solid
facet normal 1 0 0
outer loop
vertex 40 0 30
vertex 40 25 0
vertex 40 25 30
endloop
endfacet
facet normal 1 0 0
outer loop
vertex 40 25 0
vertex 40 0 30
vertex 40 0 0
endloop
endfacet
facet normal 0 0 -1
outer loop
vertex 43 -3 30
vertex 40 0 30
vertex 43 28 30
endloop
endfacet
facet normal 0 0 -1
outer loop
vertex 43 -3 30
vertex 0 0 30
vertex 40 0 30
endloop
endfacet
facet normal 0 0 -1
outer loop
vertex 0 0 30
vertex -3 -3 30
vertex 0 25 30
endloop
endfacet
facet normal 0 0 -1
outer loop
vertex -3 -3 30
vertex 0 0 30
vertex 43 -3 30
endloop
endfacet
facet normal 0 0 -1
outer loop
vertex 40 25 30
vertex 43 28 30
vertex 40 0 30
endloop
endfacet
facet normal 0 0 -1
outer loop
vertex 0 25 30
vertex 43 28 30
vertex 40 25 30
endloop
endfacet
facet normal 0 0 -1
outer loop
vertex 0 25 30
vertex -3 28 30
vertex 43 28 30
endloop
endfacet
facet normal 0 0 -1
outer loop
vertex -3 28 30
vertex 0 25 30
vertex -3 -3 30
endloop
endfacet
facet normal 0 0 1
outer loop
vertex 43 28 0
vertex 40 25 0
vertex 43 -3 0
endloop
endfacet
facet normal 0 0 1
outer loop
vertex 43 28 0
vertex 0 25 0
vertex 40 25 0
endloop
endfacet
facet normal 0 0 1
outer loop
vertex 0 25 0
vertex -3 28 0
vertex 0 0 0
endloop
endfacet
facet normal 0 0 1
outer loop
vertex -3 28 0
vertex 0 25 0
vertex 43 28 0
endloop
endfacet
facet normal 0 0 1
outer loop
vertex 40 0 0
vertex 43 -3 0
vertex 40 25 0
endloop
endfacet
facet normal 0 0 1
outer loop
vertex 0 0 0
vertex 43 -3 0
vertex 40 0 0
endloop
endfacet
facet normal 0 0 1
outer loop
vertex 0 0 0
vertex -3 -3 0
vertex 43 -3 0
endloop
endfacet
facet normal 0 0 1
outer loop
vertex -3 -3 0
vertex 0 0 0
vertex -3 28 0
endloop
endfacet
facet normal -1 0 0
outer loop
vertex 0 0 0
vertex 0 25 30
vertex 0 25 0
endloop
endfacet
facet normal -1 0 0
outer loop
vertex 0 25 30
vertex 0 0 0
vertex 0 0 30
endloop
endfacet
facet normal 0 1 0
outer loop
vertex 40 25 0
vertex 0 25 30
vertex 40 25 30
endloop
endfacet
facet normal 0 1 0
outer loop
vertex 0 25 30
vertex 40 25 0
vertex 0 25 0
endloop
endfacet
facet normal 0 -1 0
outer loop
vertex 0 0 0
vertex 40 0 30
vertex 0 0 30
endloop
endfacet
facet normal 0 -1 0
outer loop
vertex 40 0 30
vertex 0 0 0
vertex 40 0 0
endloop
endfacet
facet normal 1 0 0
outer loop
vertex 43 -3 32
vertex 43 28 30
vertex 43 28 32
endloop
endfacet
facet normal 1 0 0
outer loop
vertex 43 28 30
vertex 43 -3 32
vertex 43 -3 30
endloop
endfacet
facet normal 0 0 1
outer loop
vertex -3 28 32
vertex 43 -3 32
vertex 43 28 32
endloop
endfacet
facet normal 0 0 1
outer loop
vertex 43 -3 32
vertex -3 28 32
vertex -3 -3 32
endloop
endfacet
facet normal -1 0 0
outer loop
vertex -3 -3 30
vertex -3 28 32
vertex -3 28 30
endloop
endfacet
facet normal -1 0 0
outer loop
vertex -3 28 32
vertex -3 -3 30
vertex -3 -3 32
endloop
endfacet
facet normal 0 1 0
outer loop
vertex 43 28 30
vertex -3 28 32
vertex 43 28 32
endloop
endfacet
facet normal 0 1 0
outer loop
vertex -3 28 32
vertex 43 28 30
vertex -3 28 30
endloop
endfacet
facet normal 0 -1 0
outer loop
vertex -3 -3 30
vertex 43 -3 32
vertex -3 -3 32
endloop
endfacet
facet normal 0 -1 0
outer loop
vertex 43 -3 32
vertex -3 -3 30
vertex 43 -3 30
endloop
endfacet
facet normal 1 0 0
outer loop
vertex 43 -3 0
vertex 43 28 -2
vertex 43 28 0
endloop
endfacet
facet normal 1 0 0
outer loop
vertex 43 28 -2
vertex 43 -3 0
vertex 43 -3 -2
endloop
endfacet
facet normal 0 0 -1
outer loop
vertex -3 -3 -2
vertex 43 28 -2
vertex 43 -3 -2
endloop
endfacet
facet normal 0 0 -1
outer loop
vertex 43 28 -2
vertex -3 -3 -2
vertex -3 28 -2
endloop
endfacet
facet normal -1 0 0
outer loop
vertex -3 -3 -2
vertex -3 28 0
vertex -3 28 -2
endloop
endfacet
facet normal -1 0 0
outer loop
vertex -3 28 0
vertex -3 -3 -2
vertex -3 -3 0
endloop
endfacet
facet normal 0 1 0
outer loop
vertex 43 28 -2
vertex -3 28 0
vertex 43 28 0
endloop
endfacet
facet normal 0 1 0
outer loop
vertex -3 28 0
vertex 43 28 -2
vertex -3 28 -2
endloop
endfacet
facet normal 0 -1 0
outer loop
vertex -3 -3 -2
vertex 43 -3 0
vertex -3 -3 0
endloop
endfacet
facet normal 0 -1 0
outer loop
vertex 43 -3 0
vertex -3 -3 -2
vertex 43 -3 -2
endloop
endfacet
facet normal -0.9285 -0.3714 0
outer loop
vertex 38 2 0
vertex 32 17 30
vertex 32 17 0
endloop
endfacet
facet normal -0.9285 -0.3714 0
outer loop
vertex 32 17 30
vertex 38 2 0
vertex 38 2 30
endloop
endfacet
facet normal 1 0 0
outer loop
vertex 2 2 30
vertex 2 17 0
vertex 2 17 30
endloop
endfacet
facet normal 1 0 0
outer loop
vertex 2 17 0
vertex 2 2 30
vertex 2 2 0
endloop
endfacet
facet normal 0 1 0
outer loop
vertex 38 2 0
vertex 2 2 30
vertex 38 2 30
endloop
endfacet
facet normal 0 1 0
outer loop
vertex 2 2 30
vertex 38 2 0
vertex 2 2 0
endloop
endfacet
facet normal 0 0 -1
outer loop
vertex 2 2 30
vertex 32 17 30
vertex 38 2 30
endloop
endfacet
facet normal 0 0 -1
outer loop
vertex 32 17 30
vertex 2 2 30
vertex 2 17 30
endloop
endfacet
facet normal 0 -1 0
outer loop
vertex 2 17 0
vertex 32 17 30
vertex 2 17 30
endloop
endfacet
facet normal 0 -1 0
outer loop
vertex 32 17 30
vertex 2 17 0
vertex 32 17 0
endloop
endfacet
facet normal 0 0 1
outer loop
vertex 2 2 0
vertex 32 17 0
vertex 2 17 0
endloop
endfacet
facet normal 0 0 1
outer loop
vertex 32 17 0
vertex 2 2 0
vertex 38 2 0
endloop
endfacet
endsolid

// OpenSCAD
// Parameters
outer_width = 40;
outer_depth = 25;
outer_height = 30;
wall_thickness = 2;
flange_thickness = 2;
flange_extension = 3;

// Inner cavity dimensions (tapered)
inner_top_width = outer_width - 2 * wall_thickness;
inner_top_depth = outer_depth - 2 * wall_thickness;
inner_bottom_width = inner_top_width - 6;  // tapering inward
inner_bottom_depth = inner_top_depth - 6;
inner_height = outer_height;

// Main block with flanges
module tapered_hollow_block() {
    difference() {
        // Outer block with flanges
        union() {
            // Main outer box
            cube([outer_width, outer_depth, outer_height], center=false);
            
            // Top flange
            translate([-flange_extension, -flange_extension, outer_height])
                cube([outer_width + 2*flange_extension, outer_depth + 2*flange_extension, flange_thickness]);

            // Bottom flange
            translate([-flange_extension, -flange_extension, -flange_thickness])
                cube([outer_width + 2*flange_extension, outer_depth + 2*flange_extension, flange_thickness]);
        }

        // Inner tapered cavity
        translate([wall_thickness, wall_thickness, 0])
            linear_extrude(height=inner_height)
                polygon(points=[
                    [0, 0],
                    [inner_top_width, 0],
                    [inner_bottom_width, inner_bottom_depth],
                    [0, inner_bottom_depth]
                ]);
    }
}

// Call the module
tapered_hollow_block();
